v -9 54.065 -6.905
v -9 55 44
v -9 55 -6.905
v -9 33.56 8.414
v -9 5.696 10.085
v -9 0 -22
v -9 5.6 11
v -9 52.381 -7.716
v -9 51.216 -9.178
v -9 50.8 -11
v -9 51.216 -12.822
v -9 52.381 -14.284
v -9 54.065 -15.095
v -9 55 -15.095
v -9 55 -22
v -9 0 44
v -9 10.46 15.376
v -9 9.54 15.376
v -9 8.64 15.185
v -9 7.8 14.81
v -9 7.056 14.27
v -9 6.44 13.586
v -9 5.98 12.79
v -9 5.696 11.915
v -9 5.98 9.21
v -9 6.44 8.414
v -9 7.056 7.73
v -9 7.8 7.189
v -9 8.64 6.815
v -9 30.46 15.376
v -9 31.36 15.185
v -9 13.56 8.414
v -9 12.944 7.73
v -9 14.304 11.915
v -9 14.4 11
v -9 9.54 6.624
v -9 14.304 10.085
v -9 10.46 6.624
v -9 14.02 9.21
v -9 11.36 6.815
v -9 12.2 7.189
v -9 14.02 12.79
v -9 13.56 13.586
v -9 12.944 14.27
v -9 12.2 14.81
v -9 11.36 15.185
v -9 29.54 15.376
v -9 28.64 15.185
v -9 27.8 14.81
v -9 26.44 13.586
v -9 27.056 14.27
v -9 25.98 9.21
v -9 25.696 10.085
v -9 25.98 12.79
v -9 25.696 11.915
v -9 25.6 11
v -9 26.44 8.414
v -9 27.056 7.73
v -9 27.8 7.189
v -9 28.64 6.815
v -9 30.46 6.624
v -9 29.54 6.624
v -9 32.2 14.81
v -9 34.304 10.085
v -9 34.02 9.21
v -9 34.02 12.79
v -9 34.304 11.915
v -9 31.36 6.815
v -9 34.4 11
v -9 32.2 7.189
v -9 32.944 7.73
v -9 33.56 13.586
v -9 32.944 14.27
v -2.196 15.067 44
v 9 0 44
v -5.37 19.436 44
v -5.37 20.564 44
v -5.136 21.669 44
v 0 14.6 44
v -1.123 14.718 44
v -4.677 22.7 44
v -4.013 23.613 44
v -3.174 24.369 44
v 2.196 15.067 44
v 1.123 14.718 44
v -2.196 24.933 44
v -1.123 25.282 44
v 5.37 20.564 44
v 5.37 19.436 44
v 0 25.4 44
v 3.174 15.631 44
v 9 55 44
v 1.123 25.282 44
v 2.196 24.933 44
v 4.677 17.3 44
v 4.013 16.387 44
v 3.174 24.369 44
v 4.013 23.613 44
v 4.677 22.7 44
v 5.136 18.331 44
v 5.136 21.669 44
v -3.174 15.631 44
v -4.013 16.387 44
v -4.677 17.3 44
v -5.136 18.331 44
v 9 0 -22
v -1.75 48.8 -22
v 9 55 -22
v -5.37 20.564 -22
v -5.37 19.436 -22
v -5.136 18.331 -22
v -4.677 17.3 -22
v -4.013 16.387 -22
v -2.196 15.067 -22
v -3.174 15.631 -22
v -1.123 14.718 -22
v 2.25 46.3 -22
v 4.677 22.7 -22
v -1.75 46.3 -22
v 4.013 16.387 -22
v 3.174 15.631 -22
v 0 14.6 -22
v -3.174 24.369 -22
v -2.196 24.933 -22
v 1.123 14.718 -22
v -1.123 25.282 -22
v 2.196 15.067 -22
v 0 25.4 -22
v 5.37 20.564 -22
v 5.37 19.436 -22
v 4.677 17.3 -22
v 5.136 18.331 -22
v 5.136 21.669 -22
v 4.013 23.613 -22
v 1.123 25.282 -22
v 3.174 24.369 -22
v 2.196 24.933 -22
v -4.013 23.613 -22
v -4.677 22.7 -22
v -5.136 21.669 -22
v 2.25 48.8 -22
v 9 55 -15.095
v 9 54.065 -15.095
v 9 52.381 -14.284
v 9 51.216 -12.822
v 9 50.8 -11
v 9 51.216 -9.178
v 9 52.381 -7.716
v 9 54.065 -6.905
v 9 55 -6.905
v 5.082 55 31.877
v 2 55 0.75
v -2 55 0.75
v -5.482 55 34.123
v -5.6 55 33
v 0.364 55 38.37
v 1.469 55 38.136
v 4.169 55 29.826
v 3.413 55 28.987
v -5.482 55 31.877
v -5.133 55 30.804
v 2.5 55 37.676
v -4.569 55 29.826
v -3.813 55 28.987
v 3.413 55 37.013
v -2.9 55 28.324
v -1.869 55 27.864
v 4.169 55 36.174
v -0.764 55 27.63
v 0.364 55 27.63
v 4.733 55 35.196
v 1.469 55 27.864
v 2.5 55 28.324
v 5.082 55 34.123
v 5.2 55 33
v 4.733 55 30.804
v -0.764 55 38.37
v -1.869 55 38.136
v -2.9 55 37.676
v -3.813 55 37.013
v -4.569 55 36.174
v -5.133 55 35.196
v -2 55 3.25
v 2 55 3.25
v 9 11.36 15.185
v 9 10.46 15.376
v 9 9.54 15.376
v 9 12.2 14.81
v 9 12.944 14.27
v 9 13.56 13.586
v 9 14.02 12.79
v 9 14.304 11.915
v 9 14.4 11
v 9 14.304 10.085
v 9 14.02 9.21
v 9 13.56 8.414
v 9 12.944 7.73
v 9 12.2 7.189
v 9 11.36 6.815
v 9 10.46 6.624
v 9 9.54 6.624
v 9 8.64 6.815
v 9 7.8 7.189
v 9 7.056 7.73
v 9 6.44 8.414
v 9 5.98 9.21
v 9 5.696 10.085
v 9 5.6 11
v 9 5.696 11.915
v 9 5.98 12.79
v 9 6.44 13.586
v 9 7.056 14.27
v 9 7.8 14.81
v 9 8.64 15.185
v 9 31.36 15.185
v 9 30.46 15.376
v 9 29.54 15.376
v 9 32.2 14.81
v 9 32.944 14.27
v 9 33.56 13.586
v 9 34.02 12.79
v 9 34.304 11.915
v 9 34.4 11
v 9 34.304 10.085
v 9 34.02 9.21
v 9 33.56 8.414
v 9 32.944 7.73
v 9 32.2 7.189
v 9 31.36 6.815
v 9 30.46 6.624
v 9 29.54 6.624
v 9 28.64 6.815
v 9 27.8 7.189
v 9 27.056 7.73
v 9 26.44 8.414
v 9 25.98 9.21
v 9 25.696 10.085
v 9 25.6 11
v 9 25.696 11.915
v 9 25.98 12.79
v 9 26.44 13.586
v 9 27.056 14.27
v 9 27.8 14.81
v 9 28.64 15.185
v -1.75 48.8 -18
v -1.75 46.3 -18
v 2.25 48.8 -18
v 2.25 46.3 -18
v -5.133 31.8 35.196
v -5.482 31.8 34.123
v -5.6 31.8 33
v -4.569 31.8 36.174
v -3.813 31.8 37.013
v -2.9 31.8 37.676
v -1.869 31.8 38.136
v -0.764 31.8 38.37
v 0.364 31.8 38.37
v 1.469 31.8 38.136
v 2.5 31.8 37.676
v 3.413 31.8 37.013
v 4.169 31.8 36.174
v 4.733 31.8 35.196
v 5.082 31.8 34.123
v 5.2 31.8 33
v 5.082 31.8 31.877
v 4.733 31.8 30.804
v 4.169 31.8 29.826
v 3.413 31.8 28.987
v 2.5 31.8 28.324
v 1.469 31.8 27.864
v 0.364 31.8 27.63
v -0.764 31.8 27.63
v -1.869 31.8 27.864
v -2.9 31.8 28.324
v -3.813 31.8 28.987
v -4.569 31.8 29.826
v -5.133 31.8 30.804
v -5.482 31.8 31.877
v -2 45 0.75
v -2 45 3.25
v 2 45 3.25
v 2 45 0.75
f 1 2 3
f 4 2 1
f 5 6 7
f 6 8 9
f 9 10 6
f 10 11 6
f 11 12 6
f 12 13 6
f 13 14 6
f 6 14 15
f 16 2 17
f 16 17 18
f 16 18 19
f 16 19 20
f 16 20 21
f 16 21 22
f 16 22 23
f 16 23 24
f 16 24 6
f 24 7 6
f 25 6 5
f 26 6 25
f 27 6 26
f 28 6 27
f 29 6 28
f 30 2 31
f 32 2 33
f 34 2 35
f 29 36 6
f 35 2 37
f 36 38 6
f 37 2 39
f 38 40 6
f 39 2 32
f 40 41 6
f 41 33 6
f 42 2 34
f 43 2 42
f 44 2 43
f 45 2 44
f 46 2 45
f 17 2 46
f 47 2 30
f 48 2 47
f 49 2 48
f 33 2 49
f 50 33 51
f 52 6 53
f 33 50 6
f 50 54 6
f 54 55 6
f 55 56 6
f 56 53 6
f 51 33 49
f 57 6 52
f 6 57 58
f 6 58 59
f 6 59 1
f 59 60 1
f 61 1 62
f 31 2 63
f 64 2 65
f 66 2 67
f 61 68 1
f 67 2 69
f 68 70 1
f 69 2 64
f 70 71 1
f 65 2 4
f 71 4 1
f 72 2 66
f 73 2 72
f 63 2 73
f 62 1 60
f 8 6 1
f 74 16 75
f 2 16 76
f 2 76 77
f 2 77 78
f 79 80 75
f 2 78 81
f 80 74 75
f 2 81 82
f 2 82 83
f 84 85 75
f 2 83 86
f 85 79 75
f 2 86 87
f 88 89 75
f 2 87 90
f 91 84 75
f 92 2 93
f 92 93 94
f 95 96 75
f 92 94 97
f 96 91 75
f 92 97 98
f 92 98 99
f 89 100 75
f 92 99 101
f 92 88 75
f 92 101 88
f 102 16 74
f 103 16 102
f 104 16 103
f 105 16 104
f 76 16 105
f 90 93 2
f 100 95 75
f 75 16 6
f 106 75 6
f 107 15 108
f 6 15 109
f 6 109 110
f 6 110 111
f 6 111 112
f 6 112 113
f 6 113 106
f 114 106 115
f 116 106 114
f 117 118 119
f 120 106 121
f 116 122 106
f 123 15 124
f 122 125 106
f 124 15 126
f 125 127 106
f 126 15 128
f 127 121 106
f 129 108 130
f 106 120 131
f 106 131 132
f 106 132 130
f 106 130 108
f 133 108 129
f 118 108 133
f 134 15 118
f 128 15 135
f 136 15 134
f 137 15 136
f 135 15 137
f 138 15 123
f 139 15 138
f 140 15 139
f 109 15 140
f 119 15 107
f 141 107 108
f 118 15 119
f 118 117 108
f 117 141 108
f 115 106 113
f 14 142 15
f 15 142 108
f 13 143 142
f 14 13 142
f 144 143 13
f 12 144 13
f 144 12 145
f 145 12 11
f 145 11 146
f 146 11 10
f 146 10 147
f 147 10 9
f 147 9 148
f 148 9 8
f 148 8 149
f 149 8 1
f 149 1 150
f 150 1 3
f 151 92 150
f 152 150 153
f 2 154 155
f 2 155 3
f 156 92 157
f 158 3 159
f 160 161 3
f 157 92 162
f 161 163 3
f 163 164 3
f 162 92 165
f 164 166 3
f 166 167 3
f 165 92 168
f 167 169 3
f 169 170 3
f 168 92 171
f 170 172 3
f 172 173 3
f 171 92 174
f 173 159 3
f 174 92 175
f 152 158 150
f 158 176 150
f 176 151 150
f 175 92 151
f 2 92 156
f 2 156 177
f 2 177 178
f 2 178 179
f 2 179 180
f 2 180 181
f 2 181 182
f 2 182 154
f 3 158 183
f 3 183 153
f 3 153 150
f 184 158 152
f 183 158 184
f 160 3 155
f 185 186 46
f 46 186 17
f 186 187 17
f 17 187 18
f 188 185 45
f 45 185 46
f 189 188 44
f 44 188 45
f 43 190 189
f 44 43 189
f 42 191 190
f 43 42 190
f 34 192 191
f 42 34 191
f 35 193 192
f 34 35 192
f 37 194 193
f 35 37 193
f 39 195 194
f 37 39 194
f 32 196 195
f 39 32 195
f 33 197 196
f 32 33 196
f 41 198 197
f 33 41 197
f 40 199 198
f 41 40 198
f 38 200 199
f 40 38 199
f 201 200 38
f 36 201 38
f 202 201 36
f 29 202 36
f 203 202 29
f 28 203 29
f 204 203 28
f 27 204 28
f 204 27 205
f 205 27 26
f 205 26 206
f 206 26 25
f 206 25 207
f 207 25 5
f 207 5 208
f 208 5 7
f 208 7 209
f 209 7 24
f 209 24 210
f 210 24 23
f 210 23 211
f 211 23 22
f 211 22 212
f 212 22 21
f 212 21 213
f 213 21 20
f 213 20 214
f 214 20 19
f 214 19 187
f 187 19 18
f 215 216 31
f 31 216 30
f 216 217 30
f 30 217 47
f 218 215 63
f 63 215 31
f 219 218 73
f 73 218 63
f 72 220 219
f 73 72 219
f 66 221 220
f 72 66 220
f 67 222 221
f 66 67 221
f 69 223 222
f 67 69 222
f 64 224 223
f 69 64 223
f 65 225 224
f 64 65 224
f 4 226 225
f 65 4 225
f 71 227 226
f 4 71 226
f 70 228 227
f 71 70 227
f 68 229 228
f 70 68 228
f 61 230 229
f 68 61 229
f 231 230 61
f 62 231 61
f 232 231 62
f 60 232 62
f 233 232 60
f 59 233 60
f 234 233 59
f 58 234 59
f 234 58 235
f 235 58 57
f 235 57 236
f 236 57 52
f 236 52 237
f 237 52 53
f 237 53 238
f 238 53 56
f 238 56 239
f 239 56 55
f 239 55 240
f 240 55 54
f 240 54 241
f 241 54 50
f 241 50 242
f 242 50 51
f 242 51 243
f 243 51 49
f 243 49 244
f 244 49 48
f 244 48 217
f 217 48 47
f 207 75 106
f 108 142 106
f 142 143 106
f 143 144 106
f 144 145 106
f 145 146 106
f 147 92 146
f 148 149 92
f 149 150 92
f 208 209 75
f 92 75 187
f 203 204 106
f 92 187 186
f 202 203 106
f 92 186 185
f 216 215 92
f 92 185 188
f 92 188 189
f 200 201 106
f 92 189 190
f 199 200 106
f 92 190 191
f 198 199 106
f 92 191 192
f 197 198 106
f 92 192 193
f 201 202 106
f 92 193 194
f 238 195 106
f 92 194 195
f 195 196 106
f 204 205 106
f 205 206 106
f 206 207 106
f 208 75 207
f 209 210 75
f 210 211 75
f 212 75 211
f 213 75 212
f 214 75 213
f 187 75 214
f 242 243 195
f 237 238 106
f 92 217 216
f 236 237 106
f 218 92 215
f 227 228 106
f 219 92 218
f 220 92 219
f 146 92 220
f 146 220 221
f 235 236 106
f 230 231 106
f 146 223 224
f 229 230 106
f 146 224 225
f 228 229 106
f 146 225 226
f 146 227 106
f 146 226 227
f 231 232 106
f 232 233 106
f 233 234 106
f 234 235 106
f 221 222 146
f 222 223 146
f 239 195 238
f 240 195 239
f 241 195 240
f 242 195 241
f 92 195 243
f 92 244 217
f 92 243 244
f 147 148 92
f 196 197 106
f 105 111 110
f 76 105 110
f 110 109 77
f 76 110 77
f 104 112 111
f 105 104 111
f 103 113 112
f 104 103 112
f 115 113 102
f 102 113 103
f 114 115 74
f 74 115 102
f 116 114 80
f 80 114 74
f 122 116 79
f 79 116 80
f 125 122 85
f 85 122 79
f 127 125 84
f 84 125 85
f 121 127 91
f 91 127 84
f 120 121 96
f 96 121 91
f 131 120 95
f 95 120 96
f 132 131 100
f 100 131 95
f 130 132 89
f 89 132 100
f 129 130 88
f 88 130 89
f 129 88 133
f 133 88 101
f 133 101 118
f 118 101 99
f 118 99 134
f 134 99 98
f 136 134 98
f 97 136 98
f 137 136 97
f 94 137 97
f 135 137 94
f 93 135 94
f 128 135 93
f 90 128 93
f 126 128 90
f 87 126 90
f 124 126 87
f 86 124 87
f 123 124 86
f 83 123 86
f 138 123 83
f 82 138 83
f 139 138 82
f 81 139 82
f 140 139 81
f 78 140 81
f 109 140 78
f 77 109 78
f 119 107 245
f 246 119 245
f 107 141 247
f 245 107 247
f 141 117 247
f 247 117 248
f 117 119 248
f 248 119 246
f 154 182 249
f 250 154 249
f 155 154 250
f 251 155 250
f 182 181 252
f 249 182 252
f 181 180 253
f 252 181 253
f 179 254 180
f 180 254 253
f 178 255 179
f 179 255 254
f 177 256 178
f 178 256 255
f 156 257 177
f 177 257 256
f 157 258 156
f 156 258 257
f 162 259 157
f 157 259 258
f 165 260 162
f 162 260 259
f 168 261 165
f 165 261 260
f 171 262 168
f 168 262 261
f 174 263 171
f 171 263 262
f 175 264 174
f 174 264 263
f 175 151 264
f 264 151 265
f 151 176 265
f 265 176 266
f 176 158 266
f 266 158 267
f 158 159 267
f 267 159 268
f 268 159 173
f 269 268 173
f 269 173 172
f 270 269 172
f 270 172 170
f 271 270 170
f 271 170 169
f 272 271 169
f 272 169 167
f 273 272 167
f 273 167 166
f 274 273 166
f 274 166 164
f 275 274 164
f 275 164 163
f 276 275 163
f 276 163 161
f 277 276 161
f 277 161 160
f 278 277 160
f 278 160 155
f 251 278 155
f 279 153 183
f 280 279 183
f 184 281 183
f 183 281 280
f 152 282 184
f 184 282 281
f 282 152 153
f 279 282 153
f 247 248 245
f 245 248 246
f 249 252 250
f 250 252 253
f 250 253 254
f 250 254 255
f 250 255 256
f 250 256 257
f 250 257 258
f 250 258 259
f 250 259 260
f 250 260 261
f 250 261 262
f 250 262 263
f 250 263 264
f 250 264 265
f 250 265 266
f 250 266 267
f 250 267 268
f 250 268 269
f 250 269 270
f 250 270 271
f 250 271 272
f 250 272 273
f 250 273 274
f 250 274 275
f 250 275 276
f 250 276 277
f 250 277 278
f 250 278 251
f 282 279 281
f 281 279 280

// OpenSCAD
module glass_limits(){
 translate([-9,-11-22,0])cube([18,22,55]);

 translate([-9,11,0])cube([18,22,55]);

}

module corner_base(){	

 translate([-9,-11,0])cube([18,22,55]);
}

module corner_holes(){
 translate([-11,-11,0]){
  // Bottom hole
  translate([0,11,10]) rotate([0,90,0]) translate([0,0,-5]) cylinder(h = 270, r=4.4, $fn=30);
  // Top hole
  translate([0,11,30]) rotate([0,90,0]) translate([0,0,-5]) cylinder(h = 270, r=4.4, $fn=30);
  // Middle hole
  translate([11,0,20]) rotate([0,0,90]) rotate([0,90,0]) translate([0,0,-100]) cylinder(h = 270, r=5.4, $fn=30);

// Top hole
  translate([5.4*2,-22/2,20+5.4*2+1]) rotate([0,0,0]) cylinder(h = 270, r=5.4, $fn=30);

  translate([0,33,55]) rotate([90,90,90]) cylinder(h = 270, r=4.2);

translate([11+4.5/2,-10+50,55-4.2-4.5])  rotate([0,0,90]) cube([50,4,2.5]);

translate([11,20,70]){ rotate([0,0,0]) cube([4,2.5,50],center=true);}
 }
}

// Final part
module corner(){

 // Rotate the part for better printing
 translate([0,0,11]) rotate([-90,0,0]) difference(){
  union(){
   corner_base();
   glass_limits();
  }
  corner_holes();

 }
}

corner();
